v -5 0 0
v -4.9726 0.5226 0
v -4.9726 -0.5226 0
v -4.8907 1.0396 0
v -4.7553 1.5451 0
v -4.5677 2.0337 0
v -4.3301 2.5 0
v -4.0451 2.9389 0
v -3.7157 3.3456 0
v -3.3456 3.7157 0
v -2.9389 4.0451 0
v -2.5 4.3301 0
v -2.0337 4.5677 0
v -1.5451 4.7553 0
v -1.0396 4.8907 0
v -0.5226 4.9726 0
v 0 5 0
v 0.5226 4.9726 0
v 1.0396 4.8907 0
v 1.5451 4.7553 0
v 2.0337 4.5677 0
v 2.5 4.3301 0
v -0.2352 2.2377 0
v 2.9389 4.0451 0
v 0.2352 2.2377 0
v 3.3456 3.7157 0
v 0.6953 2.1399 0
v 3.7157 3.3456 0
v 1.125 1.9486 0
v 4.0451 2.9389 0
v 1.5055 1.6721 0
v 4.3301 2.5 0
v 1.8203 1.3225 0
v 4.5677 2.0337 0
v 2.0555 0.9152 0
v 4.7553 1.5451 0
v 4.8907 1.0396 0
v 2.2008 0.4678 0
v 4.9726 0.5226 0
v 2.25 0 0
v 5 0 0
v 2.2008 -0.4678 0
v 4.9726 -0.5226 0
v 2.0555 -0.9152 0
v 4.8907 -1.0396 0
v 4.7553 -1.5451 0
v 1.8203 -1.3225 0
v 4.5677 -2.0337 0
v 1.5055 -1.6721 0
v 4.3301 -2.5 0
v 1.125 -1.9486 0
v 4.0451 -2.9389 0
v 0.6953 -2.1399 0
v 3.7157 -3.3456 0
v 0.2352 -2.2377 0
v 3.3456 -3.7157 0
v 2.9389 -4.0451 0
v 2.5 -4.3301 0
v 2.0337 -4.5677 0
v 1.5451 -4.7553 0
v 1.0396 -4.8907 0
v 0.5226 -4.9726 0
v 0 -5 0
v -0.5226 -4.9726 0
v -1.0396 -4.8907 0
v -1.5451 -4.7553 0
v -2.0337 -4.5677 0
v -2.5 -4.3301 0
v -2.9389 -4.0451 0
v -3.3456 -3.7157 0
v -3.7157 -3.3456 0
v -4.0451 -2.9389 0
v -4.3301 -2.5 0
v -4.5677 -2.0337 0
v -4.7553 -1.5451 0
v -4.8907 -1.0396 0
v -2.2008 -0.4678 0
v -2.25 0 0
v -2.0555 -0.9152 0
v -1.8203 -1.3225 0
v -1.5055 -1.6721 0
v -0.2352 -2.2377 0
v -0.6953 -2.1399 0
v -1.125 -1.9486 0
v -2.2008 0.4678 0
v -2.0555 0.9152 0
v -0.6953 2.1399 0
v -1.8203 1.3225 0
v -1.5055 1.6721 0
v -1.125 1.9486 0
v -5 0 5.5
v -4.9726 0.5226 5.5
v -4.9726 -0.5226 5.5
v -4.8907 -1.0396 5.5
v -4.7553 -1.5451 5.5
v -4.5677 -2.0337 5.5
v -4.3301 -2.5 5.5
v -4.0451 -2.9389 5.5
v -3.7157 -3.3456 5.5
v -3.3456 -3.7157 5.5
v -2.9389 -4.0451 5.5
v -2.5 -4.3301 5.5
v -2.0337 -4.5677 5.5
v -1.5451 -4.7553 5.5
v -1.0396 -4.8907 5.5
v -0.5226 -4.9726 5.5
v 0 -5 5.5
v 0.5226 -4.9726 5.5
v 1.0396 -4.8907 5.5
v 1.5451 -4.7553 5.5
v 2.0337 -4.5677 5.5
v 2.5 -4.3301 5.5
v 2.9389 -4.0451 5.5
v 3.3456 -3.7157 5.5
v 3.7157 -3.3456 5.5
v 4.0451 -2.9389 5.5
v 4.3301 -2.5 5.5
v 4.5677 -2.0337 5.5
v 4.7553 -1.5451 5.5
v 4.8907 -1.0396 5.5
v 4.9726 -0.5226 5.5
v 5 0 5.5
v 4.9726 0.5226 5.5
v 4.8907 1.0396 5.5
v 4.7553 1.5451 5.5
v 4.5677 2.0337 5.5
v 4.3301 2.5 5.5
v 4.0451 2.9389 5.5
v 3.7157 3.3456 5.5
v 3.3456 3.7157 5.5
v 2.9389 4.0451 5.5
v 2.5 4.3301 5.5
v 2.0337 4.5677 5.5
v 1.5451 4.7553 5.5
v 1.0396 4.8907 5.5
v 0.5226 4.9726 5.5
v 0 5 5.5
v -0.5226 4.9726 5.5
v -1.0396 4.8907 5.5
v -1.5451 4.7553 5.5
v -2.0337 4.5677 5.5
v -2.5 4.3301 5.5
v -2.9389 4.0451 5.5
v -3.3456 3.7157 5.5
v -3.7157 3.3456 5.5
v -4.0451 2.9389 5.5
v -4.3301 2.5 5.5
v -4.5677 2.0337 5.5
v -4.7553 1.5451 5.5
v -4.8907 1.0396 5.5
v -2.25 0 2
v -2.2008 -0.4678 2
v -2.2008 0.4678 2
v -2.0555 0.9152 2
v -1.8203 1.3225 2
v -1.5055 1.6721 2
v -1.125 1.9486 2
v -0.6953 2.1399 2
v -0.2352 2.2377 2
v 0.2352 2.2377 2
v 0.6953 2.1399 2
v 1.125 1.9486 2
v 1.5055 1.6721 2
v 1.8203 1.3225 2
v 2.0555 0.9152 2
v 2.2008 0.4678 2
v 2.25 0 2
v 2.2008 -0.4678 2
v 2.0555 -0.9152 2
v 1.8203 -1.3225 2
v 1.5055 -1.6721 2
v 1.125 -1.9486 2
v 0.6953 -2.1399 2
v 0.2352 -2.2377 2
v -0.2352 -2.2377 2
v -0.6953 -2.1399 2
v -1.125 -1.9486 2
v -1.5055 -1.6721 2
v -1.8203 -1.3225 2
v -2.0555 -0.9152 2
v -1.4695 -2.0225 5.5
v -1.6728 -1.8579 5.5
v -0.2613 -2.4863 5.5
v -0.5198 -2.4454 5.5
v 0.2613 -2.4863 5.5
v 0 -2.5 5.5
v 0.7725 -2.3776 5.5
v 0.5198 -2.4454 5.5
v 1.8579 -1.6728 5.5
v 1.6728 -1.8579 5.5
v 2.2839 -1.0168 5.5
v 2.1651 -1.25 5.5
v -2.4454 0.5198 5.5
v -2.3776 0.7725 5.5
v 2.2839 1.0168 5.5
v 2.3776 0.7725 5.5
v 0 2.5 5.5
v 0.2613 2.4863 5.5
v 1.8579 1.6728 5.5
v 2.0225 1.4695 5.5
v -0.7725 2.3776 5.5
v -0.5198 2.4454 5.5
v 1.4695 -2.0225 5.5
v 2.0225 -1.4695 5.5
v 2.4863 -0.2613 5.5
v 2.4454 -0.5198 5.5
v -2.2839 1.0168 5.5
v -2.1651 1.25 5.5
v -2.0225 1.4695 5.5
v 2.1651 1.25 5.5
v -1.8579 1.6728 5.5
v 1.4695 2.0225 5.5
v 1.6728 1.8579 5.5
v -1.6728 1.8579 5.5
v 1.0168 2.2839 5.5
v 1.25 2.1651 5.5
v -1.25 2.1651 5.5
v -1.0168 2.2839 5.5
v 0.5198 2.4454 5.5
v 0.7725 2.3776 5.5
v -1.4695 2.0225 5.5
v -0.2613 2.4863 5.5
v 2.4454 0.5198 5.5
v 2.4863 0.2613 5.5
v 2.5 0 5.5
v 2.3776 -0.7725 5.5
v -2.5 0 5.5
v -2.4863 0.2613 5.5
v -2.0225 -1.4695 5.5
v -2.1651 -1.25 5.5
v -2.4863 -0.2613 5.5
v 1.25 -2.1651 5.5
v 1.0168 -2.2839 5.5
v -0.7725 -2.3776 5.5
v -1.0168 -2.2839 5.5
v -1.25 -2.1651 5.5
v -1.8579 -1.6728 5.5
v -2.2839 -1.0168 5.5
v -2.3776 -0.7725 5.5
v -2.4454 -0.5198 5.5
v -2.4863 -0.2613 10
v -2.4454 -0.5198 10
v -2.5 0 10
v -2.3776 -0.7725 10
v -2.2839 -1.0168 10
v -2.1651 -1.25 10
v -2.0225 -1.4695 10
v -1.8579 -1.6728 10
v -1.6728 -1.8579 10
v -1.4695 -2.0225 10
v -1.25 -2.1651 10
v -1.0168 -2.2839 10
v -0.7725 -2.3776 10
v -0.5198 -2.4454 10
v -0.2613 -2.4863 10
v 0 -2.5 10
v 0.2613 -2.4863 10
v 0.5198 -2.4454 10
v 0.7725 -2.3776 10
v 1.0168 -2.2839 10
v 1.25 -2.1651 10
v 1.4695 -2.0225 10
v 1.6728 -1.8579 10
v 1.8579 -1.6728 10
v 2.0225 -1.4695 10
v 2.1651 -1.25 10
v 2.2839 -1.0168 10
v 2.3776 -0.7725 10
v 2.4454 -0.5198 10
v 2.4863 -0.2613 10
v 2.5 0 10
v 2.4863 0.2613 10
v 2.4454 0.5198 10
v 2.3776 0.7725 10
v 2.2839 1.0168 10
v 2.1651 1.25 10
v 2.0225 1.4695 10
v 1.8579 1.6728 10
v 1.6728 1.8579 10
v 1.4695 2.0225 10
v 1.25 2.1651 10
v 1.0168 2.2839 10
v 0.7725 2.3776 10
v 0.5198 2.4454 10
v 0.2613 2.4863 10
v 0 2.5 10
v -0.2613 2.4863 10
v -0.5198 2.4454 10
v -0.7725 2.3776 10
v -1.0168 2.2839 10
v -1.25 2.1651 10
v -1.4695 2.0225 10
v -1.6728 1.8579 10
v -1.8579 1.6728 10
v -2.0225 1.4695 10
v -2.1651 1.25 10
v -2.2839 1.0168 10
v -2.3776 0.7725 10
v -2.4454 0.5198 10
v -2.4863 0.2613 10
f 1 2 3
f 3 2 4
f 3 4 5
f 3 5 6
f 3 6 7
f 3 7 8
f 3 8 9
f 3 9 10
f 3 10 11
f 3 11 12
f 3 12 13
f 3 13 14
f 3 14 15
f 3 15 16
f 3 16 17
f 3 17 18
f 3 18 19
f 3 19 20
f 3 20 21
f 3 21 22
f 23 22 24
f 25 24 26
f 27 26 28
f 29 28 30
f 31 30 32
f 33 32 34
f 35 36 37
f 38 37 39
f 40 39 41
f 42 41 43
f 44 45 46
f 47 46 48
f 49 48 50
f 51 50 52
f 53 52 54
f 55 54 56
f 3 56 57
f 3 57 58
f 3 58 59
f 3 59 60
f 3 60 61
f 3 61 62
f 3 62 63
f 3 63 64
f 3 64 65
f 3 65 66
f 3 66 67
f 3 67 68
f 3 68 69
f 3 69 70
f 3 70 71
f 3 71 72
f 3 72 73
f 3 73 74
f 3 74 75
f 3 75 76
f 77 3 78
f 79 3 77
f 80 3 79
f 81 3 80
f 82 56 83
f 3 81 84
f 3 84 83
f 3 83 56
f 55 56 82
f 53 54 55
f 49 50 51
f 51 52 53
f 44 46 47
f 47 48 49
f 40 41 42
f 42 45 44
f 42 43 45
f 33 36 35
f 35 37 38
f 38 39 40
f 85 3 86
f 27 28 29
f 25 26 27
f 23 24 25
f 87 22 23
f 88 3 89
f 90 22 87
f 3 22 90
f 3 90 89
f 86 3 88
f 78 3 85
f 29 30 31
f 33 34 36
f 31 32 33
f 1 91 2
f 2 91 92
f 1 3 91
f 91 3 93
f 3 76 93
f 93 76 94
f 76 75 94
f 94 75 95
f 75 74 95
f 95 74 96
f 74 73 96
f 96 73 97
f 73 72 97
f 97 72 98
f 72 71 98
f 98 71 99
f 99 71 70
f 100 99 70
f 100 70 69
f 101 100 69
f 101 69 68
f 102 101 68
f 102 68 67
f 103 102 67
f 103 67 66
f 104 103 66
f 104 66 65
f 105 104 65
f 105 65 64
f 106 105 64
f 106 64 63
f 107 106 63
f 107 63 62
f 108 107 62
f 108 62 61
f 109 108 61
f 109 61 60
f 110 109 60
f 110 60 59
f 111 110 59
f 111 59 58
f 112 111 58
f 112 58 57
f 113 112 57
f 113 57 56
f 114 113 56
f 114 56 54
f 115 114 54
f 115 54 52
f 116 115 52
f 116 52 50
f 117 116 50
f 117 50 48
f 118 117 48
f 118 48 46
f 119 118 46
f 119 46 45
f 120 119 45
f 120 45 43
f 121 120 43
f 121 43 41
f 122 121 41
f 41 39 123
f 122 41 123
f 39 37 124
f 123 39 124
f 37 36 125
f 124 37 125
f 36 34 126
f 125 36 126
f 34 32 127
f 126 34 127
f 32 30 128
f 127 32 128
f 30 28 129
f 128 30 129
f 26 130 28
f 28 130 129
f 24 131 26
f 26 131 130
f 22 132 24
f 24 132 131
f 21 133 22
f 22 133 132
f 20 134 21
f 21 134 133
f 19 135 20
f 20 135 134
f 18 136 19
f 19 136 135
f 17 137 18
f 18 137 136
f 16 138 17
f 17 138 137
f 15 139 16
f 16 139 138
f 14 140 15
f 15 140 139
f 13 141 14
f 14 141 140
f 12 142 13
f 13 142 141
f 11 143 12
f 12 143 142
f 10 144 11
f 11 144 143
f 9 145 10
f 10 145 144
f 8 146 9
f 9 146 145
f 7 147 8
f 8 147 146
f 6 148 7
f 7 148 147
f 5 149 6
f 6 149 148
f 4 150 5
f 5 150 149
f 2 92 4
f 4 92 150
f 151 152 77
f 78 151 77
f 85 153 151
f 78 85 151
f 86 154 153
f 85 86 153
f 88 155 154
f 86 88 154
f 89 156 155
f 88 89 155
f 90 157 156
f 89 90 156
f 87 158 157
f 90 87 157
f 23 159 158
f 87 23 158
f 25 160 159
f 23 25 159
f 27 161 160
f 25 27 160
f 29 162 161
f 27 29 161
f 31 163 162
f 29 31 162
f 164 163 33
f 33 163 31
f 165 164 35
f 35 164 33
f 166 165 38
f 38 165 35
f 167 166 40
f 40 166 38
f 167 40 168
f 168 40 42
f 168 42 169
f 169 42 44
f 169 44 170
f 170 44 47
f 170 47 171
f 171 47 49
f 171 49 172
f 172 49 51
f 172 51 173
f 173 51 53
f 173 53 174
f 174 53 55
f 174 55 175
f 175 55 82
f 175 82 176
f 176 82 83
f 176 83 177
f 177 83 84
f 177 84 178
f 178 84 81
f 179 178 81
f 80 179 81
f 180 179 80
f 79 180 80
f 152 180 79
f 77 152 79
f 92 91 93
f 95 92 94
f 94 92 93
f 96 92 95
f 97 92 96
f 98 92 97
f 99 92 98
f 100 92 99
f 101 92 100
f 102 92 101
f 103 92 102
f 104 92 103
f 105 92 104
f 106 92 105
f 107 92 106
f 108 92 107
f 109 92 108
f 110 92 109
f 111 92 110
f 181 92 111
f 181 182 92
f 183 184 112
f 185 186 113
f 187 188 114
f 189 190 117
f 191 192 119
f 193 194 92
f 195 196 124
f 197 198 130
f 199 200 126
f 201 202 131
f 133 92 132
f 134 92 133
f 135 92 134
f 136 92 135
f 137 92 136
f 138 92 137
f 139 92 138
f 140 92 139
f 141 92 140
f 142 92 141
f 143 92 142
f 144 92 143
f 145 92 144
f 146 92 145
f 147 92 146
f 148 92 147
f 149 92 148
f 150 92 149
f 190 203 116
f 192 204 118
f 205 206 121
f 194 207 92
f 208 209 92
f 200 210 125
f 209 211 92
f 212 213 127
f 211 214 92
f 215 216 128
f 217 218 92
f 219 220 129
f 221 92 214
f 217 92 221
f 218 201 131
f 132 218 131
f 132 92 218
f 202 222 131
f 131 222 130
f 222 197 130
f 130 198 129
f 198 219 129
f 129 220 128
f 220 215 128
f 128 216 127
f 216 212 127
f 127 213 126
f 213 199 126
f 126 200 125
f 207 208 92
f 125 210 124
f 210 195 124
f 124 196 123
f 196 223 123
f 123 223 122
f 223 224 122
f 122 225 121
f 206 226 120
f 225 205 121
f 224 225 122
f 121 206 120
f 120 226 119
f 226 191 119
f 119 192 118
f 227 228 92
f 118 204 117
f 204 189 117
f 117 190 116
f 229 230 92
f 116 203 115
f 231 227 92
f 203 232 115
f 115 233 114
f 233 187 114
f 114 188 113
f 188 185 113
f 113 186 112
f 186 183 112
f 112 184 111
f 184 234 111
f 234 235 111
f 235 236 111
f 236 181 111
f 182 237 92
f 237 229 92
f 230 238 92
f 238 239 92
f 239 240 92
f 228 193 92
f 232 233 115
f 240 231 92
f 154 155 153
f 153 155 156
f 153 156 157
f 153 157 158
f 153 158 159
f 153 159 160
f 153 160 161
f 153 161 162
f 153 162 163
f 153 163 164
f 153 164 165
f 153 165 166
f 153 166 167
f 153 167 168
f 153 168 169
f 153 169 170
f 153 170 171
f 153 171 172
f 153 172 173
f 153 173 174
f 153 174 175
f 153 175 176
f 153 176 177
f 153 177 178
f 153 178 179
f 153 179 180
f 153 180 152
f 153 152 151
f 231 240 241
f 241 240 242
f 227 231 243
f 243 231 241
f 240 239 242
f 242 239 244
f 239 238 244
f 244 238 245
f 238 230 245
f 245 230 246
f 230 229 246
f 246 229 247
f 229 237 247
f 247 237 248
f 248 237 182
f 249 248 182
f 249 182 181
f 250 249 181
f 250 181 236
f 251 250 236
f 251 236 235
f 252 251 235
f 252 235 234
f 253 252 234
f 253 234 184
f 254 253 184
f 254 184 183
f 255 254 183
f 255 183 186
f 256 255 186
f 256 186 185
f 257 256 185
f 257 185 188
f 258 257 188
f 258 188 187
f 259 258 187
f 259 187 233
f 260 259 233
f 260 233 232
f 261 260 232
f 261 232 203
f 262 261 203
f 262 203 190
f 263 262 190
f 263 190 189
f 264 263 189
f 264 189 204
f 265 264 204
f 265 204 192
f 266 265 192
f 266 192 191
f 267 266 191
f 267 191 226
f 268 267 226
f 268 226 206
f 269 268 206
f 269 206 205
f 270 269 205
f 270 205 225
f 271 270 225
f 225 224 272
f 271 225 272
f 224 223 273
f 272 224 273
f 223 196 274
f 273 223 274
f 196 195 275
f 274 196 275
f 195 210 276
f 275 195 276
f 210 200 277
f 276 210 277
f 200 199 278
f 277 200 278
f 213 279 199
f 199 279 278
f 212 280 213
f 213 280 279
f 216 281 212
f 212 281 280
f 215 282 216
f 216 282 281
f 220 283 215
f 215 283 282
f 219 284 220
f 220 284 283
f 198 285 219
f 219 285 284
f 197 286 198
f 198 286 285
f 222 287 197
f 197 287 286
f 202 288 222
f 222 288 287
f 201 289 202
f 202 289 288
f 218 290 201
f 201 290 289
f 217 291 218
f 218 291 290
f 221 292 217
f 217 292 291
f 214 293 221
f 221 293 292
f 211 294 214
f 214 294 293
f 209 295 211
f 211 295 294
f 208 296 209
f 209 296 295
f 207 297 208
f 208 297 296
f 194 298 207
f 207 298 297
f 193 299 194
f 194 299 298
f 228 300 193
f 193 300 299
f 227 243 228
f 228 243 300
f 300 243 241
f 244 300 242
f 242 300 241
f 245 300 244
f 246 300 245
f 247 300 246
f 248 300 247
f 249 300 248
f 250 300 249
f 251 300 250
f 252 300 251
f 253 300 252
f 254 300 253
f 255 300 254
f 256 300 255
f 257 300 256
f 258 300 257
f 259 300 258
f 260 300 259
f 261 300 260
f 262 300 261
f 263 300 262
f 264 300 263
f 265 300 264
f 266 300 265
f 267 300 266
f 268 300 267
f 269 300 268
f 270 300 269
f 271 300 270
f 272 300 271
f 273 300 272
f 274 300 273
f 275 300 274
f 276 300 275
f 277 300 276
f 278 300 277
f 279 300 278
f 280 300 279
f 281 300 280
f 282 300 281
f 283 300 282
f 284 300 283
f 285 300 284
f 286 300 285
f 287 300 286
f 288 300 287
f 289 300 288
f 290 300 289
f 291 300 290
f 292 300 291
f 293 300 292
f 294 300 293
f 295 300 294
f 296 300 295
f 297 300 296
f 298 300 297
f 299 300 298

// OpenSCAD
//
// Thermal imaging camera power button
//
module additive_parts() {
  // Disk
  cylinder(h=5.5, d=10, center=false, $fn=60);

  // Stem
  cylinder(h=10, d=5, center=false, $fn=60);
}

difference() {
  additive_parts();

  // Cut-out for PCB button stem
  cylinder(h=2, d=4.5, center=false, $fn=30);
}
